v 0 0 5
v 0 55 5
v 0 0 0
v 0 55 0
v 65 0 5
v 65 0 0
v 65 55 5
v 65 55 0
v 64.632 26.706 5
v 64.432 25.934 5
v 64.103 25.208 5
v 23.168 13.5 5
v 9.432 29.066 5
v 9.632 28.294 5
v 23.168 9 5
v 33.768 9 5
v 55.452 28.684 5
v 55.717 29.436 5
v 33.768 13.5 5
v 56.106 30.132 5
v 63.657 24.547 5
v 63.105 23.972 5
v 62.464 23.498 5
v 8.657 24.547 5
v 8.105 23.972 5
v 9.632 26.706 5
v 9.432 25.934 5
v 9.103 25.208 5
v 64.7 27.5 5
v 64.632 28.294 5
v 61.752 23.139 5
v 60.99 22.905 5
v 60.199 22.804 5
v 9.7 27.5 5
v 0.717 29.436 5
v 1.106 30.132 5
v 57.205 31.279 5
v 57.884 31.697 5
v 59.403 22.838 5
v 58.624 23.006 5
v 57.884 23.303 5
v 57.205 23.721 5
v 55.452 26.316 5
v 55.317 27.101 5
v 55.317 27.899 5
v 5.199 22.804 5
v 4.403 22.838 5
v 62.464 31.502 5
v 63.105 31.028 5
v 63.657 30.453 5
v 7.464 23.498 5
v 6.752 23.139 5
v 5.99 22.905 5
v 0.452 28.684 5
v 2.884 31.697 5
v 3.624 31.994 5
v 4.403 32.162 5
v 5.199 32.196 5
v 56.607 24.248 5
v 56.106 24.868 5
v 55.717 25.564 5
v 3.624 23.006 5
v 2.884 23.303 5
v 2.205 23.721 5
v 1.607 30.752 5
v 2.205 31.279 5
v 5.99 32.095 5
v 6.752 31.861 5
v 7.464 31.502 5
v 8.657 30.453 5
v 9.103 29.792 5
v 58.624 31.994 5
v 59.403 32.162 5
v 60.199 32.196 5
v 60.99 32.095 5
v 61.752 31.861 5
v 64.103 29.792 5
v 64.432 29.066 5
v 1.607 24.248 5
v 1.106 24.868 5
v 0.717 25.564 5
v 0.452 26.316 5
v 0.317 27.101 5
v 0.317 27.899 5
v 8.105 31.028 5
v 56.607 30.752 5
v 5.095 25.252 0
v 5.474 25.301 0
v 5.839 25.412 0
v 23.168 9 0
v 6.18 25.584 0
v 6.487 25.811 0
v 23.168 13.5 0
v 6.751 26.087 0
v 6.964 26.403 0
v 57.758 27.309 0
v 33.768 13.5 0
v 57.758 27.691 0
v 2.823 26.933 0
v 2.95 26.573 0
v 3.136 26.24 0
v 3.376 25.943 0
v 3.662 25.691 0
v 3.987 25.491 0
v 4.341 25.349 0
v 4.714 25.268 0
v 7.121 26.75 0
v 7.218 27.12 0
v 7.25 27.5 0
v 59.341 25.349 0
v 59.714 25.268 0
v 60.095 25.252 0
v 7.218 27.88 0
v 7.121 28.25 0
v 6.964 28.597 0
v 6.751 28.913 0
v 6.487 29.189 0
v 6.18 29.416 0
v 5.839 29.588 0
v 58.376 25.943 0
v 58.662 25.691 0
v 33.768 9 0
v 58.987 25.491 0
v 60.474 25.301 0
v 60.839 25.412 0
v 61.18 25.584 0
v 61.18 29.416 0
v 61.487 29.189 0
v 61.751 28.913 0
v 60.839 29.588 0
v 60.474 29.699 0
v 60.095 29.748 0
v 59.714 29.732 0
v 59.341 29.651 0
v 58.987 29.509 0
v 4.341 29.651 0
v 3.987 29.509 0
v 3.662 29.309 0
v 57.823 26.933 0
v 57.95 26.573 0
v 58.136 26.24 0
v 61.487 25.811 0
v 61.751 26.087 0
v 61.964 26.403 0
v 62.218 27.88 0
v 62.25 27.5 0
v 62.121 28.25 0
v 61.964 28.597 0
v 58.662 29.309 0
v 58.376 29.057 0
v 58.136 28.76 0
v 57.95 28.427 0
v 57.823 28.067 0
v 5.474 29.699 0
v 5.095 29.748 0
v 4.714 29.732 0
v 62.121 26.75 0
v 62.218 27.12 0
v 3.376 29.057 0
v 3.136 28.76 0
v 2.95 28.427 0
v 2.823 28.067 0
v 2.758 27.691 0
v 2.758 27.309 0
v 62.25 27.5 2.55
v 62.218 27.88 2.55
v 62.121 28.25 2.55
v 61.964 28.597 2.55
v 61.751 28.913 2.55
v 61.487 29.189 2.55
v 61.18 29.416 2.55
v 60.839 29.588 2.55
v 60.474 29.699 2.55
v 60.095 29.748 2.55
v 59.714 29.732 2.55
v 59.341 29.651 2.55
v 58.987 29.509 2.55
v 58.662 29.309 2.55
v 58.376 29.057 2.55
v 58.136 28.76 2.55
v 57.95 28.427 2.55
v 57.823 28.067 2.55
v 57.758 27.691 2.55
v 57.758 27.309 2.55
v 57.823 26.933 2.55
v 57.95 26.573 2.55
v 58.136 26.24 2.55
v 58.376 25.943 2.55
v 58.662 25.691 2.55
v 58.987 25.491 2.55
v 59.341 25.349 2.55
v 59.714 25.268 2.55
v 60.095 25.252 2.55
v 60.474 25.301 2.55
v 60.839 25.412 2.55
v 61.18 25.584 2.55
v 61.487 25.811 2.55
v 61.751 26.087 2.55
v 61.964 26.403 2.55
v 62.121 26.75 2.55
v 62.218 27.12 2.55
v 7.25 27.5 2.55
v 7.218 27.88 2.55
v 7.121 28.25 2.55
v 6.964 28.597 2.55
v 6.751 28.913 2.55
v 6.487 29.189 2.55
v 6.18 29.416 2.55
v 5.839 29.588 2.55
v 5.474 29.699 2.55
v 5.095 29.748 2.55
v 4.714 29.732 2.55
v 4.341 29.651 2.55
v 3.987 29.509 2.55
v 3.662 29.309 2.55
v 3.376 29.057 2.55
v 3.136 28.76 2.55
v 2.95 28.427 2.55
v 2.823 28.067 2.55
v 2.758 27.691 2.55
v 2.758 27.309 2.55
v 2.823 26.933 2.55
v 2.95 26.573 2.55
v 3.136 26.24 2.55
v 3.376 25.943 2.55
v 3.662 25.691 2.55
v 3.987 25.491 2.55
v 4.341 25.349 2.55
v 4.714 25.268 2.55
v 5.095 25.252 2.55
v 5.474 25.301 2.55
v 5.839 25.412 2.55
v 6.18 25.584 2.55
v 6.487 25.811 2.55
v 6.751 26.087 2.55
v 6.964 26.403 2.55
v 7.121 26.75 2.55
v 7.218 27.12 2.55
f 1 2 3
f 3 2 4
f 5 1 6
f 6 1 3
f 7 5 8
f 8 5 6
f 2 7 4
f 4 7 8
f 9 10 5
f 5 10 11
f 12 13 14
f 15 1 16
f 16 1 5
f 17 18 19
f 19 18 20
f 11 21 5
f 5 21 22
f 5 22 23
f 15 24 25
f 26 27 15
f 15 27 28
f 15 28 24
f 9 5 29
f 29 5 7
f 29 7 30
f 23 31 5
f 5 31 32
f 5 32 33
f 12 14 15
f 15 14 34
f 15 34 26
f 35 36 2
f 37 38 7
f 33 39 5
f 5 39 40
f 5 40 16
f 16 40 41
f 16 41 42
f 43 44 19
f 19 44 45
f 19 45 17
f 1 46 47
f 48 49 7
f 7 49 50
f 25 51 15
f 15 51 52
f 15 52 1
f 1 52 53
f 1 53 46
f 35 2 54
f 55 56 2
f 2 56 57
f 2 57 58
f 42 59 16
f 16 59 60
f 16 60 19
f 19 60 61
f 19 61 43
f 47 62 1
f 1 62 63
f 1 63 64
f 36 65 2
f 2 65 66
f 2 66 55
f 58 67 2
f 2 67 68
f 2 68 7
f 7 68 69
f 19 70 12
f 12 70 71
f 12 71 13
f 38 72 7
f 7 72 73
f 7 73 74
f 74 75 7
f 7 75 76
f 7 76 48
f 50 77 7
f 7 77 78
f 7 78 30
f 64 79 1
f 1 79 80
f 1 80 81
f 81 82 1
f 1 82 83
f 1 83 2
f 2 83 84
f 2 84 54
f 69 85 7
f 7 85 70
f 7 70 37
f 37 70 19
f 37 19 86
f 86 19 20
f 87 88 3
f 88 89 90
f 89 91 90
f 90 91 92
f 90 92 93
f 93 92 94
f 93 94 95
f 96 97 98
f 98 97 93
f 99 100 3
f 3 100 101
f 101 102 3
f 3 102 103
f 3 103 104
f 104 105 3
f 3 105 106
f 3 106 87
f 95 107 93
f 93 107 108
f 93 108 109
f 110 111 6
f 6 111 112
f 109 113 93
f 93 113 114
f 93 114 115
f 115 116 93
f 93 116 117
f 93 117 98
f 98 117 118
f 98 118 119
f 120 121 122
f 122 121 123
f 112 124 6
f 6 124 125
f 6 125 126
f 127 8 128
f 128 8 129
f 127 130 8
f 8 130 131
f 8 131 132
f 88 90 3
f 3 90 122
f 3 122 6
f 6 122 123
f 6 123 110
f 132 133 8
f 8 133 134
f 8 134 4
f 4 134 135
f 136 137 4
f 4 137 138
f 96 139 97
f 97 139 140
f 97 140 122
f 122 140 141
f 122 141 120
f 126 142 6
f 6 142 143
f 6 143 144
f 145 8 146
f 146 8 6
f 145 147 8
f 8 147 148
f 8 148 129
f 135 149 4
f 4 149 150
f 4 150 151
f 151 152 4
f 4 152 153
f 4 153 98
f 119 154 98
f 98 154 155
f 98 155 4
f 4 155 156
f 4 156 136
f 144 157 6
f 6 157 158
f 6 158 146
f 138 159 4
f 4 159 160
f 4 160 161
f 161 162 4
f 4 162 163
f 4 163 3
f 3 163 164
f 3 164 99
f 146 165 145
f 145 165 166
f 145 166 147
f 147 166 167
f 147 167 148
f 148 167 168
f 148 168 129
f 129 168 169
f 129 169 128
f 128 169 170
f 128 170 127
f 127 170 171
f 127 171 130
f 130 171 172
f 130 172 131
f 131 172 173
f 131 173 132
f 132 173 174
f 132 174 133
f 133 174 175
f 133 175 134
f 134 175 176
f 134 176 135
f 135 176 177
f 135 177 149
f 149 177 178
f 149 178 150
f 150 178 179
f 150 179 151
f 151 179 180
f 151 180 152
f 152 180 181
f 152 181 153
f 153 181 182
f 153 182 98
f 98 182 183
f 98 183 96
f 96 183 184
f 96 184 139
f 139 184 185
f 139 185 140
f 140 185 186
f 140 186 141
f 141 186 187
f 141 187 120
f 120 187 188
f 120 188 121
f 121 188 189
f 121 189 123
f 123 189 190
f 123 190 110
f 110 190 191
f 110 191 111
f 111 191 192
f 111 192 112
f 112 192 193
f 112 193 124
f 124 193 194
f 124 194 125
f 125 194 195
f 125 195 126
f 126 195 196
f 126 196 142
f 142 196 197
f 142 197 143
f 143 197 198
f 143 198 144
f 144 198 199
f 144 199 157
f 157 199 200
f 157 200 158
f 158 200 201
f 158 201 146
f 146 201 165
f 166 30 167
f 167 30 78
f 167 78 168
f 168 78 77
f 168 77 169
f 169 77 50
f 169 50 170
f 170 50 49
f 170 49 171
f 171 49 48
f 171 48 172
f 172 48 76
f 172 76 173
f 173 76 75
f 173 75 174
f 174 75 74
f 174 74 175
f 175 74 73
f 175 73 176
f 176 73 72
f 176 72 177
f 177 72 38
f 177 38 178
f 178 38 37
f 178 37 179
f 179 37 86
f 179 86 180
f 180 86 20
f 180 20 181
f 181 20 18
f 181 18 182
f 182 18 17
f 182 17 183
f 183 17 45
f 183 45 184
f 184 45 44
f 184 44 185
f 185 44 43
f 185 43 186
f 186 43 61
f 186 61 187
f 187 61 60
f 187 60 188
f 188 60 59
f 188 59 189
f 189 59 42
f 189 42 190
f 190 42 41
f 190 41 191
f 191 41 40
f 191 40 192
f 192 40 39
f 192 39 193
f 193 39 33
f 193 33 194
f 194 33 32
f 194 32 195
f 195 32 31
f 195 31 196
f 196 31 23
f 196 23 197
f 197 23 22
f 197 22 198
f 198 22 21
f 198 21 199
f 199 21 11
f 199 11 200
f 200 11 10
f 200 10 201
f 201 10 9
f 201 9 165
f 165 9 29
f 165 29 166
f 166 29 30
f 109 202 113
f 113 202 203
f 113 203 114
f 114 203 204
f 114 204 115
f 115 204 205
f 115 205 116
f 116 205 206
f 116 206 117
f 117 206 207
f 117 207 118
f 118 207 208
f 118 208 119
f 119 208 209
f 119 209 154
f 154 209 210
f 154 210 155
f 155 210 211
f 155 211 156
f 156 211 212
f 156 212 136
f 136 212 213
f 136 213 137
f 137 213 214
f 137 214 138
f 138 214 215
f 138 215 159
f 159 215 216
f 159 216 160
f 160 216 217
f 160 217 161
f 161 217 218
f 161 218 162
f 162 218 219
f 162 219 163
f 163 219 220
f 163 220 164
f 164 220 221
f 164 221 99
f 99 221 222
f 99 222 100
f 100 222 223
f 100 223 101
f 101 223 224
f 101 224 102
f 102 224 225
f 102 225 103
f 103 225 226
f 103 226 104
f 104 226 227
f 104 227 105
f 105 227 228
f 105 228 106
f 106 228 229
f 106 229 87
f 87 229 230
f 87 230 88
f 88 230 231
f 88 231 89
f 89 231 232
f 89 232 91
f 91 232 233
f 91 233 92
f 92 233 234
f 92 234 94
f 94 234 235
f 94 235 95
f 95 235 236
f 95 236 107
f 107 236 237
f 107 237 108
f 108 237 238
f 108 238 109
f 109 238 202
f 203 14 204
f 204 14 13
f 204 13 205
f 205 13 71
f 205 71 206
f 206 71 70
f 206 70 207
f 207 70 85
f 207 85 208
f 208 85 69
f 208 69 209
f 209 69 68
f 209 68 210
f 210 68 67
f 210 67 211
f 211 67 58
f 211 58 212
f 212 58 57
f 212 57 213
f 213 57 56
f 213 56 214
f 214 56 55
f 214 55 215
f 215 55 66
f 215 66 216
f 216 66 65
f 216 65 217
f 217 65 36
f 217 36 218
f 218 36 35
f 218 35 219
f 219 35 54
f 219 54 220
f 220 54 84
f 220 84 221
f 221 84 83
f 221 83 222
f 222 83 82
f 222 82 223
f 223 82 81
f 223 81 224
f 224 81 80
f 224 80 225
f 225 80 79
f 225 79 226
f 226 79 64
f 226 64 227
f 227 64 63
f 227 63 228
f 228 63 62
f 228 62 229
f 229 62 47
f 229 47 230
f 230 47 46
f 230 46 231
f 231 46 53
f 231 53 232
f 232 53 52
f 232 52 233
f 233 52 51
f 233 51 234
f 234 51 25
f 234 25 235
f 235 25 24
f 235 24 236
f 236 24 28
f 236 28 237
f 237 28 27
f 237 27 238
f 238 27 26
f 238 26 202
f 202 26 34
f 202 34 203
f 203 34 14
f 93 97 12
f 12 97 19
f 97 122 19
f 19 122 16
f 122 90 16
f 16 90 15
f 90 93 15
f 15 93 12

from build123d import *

# Parameters (mm, degrees)
ESQUISSE1_W                                    = 65
ESQUISSE1_H                                    = 55
BOSS_EXTRU_1_DEPTH                             = 5
ESQUISSE2_R                                    = 2
ENL_V_MAT_EXTRU_1_DEPTH                        = 86.293610546
FRAISAGE_POUR_VIS_T_TE_FRAIS_E_M41_D           = 4.5
FRAISAGE_POUR_VIS_T_TE_FRAIS_E_M41_CSINK_D     = 9.4
FRAISAGE_POUR_VIS_T_TE_FRAIS_E_M41_CSINK_ANGLE = 90
ESQUISSE6_W                                    = 10.600064569
ESQUISSE6_H                                    = 4.5
ENL_V_MAT_EXTRU_2_DEPTH                        = 86.293610546


with BuildPart() as part:
    # Esquisse1 → Boss.-Extru.1 (new body)
    with BuildSketch(Plane.XY):
        with Locations((32.5, 27.5)):
            Rectangle(ESQUISSE1_W, ESQUISSE1_H)
    extrude(amount=BOSS_EXTRU_1_DEPTH)

    # Esquisse2 → Enlèv. mat.-Extru.1 (cut, through all)
    with BuildSketch(Plane.XY.offset(5)):
        with Locations((5, 27.5)):
            Circle(ESQUISSE2_R)
        with Locations((60, 27.5)):
            Circle(ESQUISSE2_R)
    extrude(amount=-ENL_V_MAT_EXTRU_1_DEPTH, mode=Mode.SUBTRACT)

    # Fraisage pour vis à tête fraisée M41 (through all)
    with Locations(Plane.XY.offset(5)):
        with Locations((5, 27.5), (60, 27.5)):
            CounterSinkHole(FRAISAGE_POUR_VIS_T_TE_FRAIS_E_M41_D / 2, FRAISAGE_POUR_VIS_T_TE_FRAIS_E_M41_CSINK_D / 2, counter_sink_angle=FRAISAGE_POUR_VIS_T_TE_FRAIS_E_M41_CSINK_ANGLE)

    # Esquisse6 → Enlèv. mat.-Extru.2 (cut, through all)
    with BuildSketch(Plane.XY.offset(5)):
        with Locations((28.468386436, 11.25)):
            Rectangle(ESQUISSE6_W, ESQUISSE6_H)
    extrude(amount=-ENL_V_MAT_EXTRU_2_DEPTH, mode=Mode.SUBTRACT)


solid = part.part
